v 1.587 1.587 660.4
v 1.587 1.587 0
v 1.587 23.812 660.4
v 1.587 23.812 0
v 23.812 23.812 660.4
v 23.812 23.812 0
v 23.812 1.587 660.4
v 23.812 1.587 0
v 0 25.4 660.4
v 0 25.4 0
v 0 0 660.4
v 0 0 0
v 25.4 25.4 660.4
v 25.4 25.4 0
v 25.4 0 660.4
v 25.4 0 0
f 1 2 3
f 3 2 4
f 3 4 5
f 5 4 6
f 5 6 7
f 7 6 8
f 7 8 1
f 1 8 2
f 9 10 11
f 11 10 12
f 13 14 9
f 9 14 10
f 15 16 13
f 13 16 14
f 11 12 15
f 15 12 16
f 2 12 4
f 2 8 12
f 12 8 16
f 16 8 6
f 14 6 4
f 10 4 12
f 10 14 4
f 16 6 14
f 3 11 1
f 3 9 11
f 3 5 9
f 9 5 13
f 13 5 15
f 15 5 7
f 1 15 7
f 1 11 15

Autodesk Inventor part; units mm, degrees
ref_plane "YZ Plane" through (0, 0, 0) normal (1, 0, 0) x (0, 1, 0)
ref_plane "XZ Plane" through (0, 0, 0) normal (0, 1, 0) x (-1, 0, 0)
ref_plane "XY Plane" through (0, 0, 0) normal (0, 0, 1) x (1, 0, 0)
sketch "Sketch1" plane through (0, 0, 0) normal (0, 0, 1) x (1, 0, 0)
  line L0 (0, 0) -> (25.4, 0)
  line L1 (25.4, 0) -> (25.4, 25.4)
  line L2 (25.4, 25.4) -> (0, 25.4)
  line L3 (0, 25.4) -> (0, 0)
  dimension "d0" = 25.4
  dimension "d1" = 25.4
extrude "Extrusion1" add sketch "Sketch1" along normal blind 660.4
shell "Shell1" thickness 1.5875 removed faces 2 at (8.4667, 16.9333, 0) at (8.4667, 16.9333, 660.4)
equation "\"d1\" = d0"
properties part number "CrossFrameRail" material "Aluminum-6061"
